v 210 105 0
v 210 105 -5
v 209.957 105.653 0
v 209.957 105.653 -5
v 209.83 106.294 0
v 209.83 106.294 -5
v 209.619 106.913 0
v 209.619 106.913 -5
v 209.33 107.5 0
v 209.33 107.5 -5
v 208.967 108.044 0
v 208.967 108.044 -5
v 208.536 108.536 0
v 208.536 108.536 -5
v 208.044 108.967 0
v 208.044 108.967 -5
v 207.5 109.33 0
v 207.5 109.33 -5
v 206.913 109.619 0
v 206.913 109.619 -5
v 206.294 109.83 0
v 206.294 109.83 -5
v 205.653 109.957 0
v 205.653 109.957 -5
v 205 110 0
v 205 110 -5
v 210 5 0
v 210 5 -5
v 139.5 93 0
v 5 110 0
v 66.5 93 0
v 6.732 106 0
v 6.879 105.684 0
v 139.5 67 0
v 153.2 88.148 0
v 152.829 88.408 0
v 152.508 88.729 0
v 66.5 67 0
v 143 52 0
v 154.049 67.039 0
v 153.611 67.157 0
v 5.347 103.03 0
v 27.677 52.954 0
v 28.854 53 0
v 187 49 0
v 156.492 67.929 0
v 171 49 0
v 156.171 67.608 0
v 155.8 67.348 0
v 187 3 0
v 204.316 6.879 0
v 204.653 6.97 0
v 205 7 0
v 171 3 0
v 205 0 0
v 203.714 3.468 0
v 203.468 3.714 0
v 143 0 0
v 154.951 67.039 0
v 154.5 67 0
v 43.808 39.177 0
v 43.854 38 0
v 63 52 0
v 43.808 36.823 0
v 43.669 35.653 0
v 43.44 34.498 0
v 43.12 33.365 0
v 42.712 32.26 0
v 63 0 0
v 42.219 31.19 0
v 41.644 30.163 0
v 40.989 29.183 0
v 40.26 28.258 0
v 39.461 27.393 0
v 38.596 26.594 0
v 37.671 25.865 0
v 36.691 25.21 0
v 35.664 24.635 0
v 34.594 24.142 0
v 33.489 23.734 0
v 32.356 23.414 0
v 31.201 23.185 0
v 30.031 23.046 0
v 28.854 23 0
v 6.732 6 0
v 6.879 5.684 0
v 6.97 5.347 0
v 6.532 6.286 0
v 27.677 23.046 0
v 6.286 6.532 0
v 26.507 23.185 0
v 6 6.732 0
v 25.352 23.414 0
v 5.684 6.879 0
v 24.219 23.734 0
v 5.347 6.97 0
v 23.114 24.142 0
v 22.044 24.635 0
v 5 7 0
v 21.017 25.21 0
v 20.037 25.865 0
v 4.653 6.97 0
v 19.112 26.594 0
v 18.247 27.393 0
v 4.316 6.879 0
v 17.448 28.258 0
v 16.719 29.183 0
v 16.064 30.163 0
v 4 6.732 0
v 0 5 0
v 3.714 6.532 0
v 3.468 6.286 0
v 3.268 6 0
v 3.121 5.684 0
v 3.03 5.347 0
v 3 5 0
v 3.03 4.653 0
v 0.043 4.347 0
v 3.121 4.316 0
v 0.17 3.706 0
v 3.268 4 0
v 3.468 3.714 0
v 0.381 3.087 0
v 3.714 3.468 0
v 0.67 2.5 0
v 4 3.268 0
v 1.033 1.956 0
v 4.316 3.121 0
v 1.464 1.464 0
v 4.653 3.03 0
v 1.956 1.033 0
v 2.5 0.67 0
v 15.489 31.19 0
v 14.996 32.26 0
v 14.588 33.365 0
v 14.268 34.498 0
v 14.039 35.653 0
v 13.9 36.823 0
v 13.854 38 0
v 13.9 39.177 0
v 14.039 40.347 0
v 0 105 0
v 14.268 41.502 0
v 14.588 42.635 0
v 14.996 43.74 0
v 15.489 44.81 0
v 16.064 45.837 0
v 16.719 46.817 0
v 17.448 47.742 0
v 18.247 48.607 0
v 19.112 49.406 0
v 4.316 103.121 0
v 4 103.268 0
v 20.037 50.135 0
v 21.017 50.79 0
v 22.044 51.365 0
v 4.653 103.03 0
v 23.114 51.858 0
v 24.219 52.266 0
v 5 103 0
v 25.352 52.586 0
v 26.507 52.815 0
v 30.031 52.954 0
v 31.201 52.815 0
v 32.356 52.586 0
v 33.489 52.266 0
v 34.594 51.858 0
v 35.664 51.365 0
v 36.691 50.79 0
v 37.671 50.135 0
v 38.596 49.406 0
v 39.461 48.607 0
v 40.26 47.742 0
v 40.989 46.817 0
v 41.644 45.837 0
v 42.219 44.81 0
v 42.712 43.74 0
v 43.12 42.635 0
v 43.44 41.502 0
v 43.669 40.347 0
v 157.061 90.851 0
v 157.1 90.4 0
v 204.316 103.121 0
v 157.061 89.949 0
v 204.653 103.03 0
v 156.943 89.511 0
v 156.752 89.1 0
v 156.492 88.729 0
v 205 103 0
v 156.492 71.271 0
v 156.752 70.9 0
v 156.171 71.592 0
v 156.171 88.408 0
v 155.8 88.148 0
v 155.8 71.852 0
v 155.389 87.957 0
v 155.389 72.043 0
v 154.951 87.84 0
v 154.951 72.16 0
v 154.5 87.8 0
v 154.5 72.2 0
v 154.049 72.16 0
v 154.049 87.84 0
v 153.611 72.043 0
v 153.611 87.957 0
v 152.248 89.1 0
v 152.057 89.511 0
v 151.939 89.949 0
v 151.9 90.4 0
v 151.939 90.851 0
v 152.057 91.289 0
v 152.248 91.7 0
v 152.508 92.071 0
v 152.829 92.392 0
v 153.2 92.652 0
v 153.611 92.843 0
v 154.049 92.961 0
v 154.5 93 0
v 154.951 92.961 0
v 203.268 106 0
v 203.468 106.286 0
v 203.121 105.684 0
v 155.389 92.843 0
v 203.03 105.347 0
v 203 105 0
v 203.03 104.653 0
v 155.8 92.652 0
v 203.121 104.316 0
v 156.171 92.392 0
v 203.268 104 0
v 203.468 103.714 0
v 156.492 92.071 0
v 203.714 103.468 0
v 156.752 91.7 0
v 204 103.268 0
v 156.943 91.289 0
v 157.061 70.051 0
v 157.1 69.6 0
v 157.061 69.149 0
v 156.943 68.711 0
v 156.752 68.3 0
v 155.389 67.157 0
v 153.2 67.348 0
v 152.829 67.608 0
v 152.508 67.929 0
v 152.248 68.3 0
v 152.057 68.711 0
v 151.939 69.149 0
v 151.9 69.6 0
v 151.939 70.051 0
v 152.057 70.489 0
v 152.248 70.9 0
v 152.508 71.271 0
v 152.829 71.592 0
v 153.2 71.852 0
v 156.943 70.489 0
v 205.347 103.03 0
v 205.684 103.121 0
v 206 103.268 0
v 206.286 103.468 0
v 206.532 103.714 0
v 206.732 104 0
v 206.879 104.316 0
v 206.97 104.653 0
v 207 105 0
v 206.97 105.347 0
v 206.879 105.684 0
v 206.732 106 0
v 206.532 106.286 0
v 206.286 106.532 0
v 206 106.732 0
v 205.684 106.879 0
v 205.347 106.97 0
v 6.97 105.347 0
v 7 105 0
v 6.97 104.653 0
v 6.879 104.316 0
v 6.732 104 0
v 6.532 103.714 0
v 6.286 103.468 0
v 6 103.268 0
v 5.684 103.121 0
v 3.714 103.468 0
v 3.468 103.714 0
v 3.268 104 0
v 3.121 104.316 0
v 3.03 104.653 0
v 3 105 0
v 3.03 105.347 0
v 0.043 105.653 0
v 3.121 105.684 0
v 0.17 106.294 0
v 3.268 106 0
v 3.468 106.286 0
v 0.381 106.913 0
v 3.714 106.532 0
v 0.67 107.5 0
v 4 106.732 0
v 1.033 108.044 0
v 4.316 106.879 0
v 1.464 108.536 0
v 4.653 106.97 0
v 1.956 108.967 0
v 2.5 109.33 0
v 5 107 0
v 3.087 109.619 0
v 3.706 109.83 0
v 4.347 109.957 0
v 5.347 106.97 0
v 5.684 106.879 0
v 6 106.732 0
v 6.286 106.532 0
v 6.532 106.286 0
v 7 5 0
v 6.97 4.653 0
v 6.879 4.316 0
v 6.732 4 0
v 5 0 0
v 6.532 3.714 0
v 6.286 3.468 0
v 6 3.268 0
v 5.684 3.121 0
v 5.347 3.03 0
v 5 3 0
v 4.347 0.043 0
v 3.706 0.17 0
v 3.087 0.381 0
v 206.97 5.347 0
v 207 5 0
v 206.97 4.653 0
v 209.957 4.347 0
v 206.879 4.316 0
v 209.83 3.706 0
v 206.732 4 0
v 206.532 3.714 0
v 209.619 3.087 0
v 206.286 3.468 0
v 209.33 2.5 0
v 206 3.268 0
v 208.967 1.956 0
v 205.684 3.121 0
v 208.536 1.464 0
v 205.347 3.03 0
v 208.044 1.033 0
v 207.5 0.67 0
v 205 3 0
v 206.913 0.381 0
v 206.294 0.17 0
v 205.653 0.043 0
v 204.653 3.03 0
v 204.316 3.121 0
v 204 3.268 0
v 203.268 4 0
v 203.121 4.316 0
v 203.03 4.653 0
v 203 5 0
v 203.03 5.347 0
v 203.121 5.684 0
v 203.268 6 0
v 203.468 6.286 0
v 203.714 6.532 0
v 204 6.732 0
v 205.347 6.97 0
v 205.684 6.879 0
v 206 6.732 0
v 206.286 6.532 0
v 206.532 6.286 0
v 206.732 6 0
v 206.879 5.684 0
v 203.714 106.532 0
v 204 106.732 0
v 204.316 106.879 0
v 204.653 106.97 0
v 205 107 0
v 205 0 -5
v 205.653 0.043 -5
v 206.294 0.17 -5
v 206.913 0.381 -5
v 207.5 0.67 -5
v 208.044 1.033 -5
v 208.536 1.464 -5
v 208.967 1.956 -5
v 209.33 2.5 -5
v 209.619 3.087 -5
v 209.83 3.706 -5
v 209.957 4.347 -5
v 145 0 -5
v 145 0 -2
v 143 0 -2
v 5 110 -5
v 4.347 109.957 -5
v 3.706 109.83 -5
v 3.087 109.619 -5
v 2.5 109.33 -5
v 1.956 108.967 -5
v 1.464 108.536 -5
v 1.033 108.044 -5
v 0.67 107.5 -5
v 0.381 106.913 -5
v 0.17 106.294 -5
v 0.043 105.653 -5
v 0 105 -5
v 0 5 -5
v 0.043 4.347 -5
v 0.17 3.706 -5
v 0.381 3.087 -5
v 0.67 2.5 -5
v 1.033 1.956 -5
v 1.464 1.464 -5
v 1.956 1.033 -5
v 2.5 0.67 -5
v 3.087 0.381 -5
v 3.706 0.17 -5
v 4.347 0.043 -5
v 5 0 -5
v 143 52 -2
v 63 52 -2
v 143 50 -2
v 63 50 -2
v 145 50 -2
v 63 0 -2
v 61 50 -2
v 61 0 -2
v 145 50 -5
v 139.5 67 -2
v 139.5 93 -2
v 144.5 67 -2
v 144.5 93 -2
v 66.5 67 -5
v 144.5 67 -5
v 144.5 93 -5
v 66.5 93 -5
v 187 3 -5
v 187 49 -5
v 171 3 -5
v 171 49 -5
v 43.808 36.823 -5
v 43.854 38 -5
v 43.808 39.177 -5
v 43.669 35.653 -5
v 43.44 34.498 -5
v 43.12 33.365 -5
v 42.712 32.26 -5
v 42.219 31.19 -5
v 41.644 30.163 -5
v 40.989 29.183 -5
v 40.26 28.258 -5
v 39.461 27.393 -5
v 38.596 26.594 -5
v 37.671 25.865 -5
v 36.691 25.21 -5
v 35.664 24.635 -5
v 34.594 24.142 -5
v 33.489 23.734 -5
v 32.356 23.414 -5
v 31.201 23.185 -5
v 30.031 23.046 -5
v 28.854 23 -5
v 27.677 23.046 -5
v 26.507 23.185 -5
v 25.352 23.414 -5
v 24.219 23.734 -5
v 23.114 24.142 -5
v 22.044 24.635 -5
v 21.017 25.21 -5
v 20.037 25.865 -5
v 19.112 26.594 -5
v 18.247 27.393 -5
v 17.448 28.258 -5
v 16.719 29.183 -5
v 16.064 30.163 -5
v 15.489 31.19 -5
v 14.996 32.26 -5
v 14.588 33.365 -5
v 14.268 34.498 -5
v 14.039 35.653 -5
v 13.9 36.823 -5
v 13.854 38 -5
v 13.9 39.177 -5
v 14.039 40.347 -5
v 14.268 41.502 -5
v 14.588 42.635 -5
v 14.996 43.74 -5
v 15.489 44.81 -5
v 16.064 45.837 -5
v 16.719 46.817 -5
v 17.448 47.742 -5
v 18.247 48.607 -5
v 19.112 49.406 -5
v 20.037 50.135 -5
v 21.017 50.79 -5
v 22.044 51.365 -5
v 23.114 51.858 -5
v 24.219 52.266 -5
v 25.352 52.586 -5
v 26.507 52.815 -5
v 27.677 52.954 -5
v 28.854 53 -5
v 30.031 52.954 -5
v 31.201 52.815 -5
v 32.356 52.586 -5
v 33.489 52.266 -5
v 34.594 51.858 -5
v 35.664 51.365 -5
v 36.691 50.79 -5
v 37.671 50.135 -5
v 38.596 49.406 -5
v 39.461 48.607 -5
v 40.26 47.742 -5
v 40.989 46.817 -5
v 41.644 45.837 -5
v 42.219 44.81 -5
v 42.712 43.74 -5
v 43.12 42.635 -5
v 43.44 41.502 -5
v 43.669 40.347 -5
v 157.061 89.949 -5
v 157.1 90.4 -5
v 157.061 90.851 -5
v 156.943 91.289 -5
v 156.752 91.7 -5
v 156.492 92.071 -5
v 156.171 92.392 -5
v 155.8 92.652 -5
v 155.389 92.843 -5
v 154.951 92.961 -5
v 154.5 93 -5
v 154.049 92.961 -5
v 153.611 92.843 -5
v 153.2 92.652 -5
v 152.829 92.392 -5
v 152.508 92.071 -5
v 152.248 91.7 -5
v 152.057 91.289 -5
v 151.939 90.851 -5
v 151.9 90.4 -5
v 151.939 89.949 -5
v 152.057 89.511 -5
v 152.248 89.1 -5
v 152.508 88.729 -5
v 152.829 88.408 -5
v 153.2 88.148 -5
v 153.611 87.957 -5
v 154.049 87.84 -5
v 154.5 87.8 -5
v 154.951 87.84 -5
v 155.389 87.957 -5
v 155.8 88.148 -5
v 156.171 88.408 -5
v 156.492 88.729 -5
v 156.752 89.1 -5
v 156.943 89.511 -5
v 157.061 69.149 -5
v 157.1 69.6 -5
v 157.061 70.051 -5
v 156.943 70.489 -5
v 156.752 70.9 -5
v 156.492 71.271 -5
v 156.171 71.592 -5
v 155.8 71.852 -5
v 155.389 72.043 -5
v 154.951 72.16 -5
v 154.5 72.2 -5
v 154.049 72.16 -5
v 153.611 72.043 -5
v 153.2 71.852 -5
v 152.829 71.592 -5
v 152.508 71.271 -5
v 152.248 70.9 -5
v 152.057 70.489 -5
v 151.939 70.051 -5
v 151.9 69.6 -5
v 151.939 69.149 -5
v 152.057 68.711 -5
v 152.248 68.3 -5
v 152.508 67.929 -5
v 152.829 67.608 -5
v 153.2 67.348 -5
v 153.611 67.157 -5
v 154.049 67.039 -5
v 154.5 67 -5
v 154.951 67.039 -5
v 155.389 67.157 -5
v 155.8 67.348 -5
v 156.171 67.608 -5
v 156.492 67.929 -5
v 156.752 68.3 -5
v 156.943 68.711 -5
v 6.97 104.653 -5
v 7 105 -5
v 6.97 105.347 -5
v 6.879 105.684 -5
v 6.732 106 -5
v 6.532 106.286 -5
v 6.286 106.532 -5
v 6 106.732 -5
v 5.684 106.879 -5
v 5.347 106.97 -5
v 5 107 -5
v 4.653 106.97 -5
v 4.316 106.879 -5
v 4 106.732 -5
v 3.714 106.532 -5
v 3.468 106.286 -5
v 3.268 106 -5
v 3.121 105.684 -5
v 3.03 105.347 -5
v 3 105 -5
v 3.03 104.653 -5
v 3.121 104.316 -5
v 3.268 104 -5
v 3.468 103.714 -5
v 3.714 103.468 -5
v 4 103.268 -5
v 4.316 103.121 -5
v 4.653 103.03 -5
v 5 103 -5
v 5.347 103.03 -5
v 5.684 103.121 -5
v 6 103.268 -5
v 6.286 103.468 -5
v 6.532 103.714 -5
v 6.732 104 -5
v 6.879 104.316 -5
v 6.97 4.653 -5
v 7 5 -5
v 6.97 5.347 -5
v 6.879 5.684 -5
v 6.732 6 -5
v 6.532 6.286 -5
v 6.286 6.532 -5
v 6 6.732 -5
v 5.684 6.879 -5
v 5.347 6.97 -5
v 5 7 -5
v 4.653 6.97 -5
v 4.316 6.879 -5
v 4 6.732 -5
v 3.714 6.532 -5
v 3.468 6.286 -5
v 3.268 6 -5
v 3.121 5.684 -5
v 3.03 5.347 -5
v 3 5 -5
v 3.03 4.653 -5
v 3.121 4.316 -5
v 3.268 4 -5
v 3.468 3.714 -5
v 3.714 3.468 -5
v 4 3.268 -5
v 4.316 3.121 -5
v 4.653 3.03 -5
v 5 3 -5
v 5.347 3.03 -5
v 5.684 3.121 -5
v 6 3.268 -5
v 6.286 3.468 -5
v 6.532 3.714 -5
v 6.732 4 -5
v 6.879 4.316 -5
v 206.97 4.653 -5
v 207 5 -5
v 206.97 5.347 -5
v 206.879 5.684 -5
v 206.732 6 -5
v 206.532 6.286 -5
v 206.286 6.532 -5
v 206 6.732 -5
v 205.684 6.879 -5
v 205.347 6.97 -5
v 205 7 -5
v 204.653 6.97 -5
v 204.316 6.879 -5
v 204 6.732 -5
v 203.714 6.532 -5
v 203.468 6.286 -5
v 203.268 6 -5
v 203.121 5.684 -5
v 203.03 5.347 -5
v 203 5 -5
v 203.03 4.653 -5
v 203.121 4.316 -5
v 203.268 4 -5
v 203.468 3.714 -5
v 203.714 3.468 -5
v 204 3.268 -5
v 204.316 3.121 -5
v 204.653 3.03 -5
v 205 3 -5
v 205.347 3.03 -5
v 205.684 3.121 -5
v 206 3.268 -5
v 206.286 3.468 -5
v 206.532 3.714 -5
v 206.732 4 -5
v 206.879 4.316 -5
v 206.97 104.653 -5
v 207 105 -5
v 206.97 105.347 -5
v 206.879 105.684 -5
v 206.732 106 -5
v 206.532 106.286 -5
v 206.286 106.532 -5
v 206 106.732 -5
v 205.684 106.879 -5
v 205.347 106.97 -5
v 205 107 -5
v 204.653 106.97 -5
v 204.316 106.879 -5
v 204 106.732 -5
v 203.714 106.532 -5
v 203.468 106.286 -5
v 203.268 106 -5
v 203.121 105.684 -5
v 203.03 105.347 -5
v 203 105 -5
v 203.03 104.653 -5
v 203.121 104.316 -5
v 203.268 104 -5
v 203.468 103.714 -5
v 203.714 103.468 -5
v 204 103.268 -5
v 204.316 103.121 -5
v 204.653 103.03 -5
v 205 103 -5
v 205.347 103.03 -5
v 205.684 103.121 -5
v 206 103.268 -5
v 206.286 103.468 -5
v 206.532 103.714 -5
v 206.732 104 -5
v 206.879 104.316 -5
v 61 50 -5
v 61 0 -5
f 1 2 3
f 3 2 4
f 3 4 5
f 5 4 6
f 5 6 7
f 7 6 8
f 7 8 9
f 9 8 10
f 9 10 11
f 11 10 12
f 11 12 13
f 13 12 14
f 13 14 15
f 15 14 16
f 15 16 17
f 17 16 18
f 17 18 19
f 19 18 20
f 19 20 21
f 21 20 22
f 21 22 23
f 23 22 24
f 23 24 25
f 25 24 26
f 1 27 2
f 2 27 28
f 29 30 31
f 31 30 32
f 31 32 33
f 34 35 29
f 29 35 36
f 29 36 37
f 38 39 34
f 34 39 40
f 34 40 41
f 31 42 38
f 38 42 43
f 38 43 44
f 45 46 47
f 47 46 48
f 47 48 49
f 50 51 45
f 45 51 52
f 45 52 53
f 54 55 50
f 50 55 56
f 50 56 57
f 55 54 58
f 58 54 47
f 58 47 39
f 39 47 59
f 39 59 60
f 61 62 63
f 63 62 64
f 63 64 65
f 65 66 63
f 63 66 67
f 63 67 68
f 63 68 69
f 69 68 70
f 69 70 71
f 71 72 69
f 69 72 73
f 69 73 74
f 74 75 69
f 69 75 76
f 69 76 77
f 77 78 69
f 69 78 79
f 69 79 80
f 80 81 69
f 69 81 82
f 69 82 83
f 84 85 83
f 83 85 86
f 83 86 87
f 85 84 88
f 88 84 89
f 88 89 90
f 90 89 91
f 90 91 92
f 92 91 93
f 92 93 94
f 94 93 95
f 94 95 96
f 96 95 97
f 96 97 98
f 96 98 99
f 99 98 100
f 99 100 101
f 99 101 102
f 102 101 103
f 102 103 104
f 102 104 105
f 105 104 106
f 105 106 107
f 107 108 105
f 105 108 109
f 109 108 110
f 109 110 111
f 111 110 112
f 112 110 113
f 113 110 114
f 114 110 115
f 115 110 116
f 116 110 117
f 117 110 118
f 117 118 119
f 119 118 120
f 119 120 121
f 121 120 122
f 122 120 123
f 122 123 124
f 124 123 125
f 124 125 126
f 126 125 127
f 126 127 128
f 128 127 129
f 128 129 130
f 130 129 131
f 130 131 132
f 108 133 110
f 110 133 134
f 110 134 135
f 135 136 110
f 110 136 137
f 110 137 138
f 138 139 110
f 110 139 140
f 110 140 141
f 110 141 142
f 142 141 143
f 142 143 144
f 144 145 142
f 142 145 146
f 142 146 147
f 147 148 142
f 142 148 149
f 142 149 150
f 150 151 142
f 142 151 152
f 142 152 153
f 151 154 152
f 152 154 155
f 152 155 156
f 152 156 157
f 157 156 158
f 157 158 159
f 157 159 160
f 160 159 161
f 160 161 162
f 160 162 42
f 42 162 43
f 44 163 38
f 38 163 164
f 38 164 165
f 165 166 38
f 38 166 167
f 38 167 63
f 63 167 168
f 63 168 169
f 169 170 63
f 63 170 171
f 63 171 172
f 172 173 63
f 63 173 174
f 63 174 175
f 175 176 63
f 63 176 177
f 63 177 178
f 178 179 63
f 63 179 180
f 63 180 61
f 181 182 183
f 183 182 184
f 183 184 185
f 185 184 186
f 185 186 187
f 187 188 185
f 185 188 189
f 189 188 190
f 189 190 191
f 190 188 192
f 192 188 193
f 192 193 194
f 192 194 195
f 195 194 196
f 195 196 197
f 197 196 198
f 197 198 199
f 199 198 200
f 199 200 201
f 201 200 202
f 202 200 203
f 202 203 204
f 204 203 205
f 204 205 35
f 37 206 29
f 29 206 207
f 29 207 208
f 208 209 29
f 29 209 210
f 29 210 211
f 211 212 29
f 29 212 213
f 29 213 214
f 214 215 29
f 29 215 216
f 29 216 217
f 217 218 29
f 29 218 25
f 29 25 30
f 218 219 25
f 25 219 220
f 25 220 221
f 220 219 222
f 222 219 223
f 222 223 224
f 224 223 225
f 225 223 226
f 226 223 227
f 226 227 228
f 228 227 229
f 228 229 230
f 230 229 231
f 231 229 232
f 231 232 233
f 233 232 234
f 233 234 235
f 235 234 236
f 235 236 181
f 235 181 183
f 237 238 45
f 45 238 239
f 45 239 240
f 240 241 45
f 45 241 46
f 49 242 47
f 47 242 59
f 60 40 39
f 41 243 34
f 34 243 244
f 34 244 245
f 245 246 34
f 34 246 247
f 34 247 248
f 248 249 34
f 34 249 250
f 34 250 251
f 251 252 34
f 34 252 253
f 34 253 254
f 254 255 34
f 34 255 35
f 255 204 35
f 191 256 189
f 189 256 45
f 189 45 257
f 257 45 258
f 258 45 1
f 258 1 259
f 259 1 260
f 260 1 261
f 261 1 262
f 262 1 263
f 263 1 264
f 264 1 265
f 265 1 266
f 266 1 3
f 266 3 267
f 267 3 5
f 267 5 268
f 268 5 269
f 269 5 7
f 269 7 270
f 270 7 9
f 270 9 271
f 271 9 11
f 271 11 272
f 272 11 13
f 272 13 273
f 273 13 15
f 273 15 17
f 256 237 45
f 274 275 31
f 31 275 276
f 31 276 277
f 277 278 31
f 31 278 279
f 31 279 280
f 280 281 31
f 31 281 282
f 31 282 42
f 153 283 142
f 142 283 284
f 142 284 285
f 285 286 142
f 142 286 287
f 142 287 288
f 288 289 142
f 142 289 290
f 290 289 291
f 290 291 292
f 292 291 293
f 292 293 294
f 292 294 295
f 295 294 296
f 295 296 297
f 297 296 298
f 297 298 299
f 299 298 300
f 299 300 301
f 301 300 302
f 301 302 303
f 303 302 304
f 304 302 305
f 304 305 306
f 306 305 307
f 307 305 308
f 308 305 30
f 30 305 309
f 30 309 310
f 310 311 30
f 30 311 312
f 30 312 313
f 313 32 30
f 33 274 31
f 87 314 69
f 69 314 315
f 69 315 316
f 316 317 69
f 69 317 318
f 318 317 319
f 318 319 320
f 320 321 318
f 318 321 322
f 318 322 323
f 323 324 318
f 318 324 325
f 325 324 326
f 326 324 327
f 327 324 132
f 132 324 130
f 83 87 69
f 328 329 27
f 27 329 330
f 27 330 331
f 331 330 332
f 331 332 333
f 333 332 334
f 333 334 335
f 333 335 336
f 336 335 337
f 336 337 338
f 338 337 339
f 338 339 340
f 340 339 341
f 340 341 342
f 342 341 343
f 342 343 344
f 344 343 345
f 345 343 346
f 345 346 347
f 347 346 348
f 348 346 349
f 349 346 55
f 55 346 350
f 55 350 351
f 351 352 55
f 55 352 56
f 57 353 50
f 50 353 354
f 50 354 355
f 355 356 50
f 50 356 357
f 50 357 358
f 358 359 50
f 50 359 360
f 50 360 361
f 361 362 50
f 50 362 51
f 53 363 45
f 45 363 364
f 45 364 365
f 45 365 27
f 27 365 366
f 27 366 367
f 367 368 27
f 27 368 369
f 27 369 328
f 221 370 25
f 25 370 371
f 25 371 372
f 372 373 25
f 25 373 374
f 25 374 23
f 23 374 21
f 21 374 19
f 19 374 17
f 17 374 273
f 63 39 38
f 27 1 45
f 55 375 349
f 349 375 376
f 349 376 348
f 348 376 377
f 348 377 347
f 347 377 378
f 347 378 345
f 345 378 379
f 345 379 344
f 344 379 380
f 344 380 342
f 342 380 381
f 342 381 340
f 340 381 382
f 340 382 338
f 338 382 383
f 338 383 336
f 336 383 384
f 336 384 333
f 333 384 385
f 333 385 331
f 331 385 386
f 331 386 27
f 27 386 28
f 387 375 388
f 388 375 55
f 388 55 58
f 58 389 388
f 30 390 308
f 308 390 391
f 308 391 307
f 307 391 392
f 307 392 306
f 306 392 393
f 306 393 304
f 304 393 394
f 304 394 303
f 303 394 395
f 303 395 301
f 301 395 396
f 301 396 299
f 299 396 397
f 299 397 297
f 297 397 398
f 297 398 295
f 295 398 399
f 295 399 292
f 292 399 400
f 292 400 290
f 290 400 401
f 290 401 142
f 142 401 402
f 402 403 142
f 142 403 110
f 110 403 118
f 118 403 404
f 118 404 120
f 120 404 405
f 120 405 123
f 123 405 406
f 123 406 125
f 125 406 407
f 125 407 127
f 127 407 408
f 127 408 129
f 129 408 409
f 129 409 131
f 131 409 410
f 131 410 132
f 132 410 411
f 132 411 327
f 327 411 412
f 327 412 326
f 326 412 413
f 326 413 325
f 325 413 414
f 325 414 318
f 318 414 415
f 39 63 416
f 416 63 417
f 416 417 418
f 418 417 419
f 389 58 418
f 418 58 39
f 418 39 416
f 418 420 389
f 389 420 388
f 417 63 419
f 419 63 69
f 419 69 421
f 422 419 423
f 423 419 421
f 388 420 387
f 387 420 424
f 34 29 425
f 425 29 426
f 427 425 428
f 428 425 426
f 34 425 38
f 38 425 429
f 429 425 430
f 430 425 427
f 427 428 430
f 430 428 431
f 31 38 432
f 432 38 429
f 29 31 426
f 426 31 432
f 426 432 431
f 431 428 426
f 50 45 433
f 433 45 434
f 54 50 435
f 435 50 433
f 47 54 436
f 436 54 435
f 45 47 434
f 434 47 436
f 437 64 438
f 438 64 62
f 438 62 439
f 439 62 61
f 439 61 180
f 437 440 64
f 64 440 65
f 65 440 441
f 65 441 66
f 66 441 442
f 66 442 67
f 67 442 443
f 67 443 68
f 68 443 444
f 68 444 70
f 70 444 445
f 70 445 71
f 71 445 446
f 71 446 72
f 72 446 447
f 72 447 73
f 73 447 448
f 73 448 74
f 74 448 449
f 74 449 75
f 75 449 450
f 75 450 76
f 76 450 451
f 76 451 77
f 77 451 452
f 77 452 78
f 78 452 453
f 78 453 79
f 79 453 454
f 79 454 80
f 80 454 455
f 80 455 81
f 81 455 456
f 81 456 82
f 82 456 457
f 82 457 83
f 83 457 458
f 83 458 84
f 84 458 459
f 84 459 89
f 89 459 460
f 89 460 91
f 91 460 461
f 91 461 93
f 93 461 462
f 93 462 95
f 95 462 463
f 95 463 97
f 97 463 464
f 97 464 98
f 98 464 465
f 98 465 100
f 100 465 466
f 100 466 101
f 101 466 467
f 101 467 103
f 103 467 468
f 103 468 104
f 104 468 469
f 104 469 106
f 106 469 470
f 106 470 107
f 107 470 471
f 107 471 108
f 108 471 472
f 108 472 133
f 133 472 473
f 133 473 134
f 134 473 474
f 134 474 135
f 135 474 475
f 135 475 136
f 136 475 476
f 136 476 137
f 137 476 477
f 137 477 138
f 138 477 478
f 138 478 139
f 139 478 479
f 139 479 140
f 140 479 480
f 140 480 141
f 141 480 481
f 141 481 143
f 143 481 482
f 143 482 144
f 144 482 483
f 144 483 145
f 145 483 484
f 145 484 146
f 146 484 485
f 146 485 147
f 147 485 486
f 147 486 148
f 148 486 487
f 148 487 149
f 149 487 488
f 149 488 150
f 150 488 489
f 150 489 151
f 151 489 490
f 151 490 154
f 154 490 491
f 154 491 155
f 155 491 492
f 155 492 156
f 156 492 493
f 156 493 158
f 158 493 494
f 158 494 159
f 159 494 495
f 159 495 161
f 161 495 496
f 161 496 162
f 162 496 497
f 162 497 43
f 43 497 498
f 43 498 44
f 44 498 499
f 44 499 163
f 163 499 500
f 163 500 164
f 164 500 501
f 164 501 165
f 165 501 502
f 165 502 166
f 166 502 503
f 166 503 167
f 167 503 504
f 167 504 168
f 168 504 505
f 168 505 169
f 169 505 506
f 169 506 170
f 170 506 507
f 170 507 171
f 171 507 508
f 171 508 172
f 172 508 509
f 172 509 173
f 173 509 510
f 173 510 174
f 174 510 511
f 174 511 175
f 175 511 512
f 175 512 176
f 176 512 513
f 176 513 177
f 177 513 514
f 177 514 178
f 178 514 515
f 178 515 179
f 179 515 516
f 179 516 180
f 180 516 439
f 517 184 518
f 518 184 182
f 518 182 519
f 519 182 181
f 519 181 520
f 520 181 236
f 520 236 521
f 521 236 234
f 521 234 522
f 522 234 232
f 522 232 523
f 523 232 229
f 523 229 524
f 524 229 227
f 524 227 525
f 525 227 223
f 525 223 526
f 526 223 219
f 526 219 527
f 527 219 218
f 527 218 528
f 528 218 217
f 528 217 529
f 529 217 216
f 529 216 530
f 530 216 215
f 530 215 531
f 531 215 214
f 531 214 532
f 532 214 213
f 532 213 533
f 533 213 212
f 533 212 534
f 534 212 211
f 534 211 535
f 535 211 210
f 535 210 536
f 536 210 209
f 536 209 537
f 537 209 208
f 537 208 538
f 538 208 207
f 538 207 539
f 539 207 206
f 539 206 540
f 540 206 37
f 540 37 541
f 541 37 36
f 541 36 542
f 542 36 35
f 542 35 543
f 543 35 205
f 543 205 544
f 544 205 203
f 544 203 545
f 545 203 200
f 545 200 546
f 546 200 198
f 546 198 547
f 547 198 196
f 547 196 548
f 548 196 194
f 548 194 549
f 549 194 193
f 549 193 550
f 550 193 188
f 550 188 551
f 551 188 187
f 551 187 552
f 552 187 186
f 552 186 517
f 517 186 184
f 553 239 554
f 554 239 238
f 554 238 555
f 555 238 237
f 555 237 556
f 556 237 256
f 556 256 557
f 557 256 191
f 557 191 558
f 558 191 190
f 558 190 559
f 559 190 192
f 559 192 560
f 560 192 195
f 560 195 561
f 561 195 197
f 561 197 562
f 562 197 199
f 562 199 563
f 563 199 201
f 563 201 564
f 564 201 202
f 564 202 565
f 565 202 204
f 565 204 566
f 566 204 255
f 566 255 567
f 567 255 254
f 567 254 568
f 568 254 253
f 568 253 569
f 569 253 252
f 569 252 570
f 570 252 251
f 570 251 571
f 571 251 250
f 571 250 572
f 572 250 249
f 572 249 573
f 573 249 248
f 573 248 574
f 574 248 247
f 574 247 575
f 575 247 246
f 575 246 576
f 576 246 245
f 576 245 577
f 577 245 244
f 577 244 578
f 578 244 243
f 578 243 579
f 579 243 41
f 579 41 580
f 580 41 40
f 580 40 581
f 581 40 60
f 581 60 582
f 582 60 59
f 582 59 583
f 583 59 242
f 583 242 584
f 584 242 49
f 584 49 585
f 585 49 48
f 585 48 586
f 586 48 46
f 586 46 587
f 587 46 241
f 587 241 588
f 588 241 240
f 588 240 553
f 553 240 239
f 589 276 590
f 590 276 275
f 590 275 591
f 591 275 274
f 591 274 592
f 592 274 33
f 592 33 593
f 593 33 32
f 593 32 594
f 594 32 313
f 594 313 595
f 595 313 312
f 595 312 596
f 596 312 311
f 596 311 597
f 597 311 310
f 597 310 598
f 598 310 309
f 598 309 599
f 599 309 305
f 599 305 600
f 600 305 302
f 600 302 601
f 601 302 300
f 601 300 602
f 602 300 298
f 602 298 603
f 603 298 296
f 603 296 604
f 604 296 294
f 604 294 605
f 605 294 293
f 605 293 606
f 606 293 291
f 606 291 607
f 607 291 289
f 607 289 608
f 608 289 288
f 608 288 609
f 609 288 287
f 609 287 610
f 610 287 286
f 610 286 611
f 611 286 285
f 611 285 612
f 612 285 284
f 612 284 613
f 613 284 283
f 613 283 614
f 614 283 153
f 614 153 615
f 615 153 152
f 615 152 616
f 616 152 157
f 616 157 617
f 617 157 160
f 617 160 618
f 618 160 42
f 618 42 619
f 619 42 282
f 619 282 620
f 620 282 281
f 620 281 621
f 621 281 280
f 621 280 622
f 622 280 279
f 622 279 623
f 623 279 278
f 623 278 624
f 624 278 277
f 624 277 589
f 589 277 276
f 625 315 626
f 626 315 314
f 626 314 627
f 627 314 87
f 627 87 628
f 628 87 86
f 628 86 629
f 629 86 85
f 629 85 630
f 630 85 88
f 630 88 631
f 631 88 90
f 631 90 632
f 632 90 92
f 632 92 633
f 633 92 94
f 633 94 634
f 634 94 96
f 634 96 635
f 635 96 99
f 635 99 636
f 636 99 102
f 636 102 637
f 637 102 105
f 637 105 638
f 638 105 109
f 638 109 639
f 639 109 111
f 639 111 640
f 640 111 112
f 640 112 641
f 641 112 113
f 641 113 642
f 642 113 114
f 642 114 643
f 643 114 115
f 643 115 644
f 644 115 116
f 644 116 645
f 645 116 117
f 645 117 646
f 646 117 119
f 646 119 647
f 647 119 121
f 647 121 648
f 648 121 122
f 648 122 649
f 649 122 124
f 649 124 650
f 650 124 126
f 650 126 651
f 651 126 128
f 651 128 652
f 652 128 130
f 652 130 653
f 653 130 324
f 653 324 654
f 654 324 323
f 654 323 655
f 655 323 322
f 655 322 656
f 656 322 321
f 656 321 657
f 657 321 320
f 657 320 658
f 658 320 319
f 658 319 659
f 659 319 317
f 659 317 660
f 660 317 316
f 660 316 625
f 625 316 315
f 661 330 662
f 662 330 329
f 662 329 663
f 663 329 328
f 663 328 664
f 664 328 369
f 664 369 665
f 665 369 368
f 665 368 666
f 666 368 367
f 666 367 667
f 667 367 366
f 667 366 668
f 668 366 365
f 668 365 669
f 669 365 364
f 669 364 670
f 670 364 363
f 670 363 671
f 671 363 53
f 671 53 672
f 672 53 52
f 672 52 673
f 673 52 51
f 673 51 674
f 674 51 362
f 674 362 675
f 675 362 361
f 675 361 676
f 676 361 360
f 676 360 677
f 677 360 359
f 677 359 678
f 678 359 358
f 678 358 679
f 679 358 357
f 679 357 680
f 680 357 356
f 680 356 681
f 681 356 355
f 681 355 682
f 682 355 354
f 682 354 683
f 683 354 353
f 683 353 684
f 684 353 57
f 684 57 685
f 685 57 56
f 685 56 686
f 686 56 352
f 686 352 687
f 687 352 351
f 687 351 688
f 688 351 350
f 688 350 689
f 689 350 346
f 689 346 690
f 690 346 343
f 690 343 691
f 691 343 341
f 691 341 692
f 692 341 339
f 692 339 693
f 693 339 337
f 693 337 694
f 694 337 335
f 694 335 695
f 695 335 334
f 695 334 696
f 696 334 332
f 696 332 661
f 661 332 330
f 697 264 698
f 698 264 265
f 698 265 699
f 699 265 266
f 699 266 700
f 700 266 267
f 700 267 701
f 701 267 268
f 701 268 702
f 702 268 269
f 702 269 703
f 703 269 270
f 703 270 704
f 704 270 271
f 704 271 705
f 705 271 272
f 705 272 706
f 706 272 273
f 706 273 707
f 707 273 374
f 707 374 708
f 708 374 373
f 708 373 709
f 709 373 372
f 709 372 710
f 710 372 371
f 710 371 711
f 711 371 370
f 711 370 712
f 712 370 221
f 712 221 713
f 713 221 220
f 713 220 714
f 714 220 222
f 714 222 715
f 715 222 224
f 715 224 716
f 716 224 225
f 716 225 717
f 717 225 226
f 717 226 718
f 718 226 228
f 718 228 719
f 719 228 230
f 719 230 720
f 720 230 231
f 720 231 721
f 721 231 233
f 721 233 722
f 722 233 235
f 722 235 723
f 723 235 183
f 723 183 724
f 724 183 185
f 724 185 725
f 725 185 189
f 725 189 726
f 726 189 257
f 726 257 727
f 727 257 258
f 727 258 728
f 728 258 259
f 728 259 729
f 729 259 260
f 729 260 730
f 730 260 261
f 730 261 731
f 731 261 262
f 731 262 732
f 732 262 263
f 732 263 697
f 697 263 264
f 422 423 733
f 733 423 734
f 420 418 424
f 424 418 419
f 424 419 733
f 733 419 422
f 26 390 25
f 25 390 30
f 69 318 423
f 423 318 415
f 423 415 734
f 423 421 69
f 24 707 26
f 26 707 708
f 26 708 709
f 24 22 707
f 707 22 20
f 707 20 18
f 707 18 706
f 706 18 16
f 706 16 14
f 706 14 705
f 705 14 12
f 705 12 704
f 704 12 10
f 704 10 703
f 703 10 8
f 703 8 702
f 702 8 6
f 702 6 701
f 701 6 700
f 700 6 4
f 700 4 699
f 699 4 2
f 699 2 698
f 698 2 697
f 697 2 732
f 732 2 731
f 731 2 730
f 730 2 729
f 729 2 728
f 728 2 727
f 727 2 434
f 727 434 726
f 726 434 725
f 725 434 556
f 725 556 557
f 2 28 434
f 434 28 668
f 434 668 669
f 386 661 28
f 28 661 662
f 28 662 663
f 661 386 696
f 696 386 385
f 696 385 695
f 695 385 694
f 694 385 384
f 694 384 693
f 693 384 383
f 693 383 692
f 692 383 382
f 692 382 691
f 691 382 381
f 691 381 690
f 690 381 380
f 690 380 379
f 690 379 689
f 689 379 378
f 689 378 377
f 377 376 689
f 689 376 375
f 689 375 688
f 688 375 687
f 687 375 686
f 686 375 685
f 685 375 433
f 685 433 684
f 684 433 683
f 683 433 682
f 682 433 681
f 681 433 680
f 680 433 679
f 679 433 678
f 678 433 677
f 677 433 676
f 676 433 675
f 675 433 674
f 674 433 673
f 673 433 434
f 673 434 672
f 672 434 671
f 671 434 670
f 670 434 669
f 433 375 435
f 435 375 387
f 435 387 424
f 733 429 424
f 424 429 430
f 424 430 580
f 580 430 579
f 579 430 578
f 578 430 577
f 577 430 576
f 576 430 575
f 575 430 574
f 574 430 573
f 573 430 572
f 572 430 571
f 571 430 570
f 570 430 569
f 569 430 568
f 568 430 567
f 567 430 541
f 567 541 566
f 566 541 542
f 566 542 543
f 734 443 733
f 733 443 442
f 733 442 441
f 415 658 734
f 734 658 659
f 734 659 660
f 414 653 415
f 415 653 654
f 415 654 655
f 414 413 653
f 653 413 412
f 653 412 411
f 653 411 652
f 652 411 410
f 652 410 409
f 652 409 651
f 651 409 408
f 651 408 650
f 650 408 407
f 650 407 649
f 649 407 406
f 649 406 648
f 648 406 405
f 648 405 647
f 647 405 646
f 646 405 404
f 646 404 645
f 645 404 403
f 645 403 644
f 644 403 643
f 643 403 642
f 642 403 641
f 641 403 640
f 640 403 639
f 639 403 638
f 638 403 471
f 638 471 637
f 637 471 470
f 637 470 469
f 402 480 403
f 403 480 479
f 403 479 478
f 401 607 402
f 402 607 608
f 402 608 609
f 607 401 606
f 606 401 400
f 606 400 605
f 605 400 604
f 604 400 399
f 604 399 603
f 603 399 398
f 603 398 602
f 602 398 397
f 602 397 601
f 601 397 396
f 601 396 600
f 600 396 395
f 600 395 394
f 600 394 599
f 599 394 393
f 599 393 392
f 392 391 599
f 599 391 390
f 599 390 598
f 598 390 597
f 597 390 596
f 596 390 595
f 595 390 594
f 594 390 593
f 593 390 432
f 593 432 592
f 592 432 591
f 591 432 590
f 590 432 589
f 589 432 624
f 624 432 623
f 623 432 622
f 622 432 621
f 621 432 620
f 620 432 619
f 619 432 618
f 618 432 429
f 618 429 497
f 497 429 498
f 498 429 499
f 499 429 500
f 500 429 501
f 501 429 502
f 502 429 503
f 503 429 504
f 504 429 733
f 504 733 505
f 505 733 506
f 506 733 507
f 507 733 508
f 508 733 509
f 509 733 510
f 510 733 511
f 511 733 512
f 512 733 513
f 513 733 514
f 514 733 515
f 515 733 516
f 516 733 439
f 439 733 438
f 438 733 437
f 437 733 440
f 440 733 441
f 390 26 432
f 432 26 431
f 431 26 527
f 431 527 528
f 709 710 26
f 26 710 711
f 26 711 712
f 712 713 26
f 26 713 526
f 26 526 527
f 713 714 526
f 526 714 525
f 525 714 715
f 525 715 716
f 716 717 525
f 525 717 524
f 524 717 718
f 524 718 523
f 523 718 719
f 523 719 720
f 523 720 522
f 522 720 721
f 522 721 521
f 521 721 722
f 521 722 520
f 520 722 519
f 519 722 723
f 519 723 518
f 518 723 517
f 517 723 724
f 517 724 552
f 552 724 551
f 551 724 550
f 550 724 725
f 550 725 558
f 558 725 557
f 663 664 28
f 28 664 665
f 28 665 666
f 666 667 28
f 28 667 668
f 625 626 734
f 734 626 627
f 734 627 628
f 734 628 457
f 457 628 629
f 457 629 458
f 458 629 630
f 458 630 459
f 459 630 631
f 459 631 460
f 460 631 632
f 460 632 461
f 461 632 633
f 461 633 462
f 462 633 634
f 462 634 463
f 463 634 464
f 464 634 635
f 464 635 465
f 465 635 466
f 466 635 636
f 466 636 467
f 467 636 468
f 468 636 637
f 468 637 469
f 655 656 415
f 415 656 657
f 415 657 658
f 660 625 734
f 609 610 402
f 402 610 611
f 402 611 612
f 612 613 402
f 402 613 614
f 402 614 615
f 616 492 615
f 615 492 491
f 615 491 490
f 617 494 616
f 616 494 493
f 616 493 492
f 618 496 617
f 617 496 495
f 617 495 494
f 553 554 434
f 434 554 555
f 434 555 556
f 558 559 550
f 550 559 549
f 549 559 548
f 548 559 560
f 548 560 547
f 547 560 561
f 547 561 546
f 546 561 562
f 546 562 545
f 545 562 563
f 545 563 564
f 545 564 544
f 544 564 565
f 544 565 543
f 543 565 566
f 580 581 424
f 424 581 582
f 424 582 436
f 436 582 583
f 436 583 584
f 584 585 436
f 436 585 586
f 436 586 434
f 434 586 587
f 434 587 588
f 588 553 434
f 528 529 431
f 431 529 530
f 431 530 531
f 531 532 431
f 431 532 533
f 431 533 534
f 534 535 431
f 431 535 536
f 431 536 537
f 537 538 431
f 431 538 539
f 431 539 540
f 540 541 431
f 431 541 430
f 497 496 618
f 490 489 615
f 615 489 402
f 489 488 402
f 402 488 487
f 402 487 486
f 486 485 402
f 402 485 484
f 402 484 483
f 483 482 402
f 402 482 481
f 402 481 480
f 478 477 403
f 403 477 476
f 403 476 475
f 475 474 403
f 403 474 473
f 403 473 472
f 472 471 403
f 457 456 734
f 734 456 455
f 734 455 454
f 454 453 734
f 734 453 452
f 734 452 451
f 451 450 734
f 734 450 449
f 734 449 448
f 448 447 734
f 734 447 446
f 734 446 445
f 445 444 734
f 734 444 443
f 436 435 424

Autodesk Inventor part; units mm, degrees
ref_plane "YZ Plane" through (0, 0, 0) normal (1, 0, 0) x (0, 1, 0)
ref_plane "XZ Plane" through (0, 0, 0) normal (0, 1, 0) x (-1, 0, 0)
ref_plane "XY Plane" through (0, 0, 0) normal (0, 0, 1) x (1, 0, 0)
sketch "Sketch1" plane through (0, 0, 0) normal (0, 0, 1) x (1, 0, 0)
  line L0 (0, 0) -> (210, 0)
  line L1 (210, 0) -> (210, 110)
  line L2 (210, 110) -> (0, 110)
  line L3 (0, 110) -> (0, 0)
  line L4 (66.5, 93) -> (139.5, 93)
  line L5 (139.5, 93) -> (139.5, 67)
  line L6 (139.5, 67) -> (66.5, 67)
  line L7 (66.5, 67) -> (66.5, 93)
  line L8 (63, 0) -> (63, 50)
  line L9 (63, 50) -> (143, 50)
  line L10 (143, 50) -> (143, 0)
  line L11 (63, 50) -> (63, 110) construction
  circle A0 centre (28.854, 38) radius 15
  line L12 (139.5, 93) -> (144.5, 93)
  line L13 (144.5, 93) -> (144.5, 67)
  line L14 (144.5, 67) -> (139.5, 67)
  circle A1 centre (154.5, 90.4) radius 2.6
  circle A2 centre (154.5, 69.6) radius 2.6
  line L15 (171, 13) -> (187, 13) construction
  line L16 (171, 44) -> (187, 44) construction
  line L17 (171, 49) -> (187, 49)
  line L18 (187, 49) -> (187, 3)
  line L19 (187, 3) -> (171, 3)
  line L20 (171, 3) -> (171, 49)
  line L21 (179, 49) -> (179, 3) construction
  line L22 (63, 50) -> (61, 50)
  line L23 (61, 50) -> (61, 0)
  line L24 (143, 50) -> (145, 50)
  line L25 (145, 50) -> (145, 0)
  line L26 (63, 50) -> (63, 52)
  line L27 (143, 50) -> (143, 52)
  line L28 (143, 52) -> (63, 52)
  circle A3 centre (5, 105) radius 2
  circle A4 centre (5, 5) radius 2
  circle A5 centre (205, 5) radius 2
  circle A6 centre (205, 105) radius 2
  line L29 (5, 105) -> (0, 110) construction
  line L30 (5, 5) -> (0, 0) construction
  line L31 (205, 5) -> (210, 0) construction
  line L32 (210, 110) -> (205, 105) construction
  point P0 (103, 93)
  point P1 (105, 110)
  point P2 (66.5, 80)
  point P3 (63, 80)
  point P4 (103, 50)
  dimension "d0" = 210
  dimension "d1" = 110
  dimension "d2" = 73
  dimension "d3" = 26
  dimension "d4" = 50
  dimension "d5" = 80
  dimension "d6" = 30
  dimension "d7" = 28.854
  dimension "d8" = 38
  dimension "d9" = 63
  dimension "d11" = 5
  dimension "d12" = 5.2
  dimension "d13" = 10
  dimension "d17" = 13
  dimension "d18" = 44
  dimension "d19" = 5
  dimension "d20" = 10
  dimension "d21" = 16
  dimension "d22" = 31
  dimension "d27" = 2
  dimension "d36" = 4
  dimension "d37" = 5
  dimension "d38" = 5
extrude "Extrusion1" add sketch "Sketch1" against normal blind 5 contours L3 L2 L1 L0 L25 L24 L27 L28 L26 L22 L23 | L26 L28 L27 L9
extrude "Extrusion2" add sketch "Sketch1" against normal blind 2 contours L12 L13 L14 L5
extrude "Extrusion3" add sketch "Sketch1" against normal blind 2 contours L23 L22 L8 L0 | L10 L24 L25 L0
extrude "Extrusion4" cut sketch "Sketch1" against normal blind 2 contours L26 L28 L27 L9
fillet "Zaokrąglenie1" radius 5 4 edges at (0, 0, -2.5) (0, 110, -2.5) (210, 0, -2.5) (210, 110, -2.5)
properties part number "gora pudla"
